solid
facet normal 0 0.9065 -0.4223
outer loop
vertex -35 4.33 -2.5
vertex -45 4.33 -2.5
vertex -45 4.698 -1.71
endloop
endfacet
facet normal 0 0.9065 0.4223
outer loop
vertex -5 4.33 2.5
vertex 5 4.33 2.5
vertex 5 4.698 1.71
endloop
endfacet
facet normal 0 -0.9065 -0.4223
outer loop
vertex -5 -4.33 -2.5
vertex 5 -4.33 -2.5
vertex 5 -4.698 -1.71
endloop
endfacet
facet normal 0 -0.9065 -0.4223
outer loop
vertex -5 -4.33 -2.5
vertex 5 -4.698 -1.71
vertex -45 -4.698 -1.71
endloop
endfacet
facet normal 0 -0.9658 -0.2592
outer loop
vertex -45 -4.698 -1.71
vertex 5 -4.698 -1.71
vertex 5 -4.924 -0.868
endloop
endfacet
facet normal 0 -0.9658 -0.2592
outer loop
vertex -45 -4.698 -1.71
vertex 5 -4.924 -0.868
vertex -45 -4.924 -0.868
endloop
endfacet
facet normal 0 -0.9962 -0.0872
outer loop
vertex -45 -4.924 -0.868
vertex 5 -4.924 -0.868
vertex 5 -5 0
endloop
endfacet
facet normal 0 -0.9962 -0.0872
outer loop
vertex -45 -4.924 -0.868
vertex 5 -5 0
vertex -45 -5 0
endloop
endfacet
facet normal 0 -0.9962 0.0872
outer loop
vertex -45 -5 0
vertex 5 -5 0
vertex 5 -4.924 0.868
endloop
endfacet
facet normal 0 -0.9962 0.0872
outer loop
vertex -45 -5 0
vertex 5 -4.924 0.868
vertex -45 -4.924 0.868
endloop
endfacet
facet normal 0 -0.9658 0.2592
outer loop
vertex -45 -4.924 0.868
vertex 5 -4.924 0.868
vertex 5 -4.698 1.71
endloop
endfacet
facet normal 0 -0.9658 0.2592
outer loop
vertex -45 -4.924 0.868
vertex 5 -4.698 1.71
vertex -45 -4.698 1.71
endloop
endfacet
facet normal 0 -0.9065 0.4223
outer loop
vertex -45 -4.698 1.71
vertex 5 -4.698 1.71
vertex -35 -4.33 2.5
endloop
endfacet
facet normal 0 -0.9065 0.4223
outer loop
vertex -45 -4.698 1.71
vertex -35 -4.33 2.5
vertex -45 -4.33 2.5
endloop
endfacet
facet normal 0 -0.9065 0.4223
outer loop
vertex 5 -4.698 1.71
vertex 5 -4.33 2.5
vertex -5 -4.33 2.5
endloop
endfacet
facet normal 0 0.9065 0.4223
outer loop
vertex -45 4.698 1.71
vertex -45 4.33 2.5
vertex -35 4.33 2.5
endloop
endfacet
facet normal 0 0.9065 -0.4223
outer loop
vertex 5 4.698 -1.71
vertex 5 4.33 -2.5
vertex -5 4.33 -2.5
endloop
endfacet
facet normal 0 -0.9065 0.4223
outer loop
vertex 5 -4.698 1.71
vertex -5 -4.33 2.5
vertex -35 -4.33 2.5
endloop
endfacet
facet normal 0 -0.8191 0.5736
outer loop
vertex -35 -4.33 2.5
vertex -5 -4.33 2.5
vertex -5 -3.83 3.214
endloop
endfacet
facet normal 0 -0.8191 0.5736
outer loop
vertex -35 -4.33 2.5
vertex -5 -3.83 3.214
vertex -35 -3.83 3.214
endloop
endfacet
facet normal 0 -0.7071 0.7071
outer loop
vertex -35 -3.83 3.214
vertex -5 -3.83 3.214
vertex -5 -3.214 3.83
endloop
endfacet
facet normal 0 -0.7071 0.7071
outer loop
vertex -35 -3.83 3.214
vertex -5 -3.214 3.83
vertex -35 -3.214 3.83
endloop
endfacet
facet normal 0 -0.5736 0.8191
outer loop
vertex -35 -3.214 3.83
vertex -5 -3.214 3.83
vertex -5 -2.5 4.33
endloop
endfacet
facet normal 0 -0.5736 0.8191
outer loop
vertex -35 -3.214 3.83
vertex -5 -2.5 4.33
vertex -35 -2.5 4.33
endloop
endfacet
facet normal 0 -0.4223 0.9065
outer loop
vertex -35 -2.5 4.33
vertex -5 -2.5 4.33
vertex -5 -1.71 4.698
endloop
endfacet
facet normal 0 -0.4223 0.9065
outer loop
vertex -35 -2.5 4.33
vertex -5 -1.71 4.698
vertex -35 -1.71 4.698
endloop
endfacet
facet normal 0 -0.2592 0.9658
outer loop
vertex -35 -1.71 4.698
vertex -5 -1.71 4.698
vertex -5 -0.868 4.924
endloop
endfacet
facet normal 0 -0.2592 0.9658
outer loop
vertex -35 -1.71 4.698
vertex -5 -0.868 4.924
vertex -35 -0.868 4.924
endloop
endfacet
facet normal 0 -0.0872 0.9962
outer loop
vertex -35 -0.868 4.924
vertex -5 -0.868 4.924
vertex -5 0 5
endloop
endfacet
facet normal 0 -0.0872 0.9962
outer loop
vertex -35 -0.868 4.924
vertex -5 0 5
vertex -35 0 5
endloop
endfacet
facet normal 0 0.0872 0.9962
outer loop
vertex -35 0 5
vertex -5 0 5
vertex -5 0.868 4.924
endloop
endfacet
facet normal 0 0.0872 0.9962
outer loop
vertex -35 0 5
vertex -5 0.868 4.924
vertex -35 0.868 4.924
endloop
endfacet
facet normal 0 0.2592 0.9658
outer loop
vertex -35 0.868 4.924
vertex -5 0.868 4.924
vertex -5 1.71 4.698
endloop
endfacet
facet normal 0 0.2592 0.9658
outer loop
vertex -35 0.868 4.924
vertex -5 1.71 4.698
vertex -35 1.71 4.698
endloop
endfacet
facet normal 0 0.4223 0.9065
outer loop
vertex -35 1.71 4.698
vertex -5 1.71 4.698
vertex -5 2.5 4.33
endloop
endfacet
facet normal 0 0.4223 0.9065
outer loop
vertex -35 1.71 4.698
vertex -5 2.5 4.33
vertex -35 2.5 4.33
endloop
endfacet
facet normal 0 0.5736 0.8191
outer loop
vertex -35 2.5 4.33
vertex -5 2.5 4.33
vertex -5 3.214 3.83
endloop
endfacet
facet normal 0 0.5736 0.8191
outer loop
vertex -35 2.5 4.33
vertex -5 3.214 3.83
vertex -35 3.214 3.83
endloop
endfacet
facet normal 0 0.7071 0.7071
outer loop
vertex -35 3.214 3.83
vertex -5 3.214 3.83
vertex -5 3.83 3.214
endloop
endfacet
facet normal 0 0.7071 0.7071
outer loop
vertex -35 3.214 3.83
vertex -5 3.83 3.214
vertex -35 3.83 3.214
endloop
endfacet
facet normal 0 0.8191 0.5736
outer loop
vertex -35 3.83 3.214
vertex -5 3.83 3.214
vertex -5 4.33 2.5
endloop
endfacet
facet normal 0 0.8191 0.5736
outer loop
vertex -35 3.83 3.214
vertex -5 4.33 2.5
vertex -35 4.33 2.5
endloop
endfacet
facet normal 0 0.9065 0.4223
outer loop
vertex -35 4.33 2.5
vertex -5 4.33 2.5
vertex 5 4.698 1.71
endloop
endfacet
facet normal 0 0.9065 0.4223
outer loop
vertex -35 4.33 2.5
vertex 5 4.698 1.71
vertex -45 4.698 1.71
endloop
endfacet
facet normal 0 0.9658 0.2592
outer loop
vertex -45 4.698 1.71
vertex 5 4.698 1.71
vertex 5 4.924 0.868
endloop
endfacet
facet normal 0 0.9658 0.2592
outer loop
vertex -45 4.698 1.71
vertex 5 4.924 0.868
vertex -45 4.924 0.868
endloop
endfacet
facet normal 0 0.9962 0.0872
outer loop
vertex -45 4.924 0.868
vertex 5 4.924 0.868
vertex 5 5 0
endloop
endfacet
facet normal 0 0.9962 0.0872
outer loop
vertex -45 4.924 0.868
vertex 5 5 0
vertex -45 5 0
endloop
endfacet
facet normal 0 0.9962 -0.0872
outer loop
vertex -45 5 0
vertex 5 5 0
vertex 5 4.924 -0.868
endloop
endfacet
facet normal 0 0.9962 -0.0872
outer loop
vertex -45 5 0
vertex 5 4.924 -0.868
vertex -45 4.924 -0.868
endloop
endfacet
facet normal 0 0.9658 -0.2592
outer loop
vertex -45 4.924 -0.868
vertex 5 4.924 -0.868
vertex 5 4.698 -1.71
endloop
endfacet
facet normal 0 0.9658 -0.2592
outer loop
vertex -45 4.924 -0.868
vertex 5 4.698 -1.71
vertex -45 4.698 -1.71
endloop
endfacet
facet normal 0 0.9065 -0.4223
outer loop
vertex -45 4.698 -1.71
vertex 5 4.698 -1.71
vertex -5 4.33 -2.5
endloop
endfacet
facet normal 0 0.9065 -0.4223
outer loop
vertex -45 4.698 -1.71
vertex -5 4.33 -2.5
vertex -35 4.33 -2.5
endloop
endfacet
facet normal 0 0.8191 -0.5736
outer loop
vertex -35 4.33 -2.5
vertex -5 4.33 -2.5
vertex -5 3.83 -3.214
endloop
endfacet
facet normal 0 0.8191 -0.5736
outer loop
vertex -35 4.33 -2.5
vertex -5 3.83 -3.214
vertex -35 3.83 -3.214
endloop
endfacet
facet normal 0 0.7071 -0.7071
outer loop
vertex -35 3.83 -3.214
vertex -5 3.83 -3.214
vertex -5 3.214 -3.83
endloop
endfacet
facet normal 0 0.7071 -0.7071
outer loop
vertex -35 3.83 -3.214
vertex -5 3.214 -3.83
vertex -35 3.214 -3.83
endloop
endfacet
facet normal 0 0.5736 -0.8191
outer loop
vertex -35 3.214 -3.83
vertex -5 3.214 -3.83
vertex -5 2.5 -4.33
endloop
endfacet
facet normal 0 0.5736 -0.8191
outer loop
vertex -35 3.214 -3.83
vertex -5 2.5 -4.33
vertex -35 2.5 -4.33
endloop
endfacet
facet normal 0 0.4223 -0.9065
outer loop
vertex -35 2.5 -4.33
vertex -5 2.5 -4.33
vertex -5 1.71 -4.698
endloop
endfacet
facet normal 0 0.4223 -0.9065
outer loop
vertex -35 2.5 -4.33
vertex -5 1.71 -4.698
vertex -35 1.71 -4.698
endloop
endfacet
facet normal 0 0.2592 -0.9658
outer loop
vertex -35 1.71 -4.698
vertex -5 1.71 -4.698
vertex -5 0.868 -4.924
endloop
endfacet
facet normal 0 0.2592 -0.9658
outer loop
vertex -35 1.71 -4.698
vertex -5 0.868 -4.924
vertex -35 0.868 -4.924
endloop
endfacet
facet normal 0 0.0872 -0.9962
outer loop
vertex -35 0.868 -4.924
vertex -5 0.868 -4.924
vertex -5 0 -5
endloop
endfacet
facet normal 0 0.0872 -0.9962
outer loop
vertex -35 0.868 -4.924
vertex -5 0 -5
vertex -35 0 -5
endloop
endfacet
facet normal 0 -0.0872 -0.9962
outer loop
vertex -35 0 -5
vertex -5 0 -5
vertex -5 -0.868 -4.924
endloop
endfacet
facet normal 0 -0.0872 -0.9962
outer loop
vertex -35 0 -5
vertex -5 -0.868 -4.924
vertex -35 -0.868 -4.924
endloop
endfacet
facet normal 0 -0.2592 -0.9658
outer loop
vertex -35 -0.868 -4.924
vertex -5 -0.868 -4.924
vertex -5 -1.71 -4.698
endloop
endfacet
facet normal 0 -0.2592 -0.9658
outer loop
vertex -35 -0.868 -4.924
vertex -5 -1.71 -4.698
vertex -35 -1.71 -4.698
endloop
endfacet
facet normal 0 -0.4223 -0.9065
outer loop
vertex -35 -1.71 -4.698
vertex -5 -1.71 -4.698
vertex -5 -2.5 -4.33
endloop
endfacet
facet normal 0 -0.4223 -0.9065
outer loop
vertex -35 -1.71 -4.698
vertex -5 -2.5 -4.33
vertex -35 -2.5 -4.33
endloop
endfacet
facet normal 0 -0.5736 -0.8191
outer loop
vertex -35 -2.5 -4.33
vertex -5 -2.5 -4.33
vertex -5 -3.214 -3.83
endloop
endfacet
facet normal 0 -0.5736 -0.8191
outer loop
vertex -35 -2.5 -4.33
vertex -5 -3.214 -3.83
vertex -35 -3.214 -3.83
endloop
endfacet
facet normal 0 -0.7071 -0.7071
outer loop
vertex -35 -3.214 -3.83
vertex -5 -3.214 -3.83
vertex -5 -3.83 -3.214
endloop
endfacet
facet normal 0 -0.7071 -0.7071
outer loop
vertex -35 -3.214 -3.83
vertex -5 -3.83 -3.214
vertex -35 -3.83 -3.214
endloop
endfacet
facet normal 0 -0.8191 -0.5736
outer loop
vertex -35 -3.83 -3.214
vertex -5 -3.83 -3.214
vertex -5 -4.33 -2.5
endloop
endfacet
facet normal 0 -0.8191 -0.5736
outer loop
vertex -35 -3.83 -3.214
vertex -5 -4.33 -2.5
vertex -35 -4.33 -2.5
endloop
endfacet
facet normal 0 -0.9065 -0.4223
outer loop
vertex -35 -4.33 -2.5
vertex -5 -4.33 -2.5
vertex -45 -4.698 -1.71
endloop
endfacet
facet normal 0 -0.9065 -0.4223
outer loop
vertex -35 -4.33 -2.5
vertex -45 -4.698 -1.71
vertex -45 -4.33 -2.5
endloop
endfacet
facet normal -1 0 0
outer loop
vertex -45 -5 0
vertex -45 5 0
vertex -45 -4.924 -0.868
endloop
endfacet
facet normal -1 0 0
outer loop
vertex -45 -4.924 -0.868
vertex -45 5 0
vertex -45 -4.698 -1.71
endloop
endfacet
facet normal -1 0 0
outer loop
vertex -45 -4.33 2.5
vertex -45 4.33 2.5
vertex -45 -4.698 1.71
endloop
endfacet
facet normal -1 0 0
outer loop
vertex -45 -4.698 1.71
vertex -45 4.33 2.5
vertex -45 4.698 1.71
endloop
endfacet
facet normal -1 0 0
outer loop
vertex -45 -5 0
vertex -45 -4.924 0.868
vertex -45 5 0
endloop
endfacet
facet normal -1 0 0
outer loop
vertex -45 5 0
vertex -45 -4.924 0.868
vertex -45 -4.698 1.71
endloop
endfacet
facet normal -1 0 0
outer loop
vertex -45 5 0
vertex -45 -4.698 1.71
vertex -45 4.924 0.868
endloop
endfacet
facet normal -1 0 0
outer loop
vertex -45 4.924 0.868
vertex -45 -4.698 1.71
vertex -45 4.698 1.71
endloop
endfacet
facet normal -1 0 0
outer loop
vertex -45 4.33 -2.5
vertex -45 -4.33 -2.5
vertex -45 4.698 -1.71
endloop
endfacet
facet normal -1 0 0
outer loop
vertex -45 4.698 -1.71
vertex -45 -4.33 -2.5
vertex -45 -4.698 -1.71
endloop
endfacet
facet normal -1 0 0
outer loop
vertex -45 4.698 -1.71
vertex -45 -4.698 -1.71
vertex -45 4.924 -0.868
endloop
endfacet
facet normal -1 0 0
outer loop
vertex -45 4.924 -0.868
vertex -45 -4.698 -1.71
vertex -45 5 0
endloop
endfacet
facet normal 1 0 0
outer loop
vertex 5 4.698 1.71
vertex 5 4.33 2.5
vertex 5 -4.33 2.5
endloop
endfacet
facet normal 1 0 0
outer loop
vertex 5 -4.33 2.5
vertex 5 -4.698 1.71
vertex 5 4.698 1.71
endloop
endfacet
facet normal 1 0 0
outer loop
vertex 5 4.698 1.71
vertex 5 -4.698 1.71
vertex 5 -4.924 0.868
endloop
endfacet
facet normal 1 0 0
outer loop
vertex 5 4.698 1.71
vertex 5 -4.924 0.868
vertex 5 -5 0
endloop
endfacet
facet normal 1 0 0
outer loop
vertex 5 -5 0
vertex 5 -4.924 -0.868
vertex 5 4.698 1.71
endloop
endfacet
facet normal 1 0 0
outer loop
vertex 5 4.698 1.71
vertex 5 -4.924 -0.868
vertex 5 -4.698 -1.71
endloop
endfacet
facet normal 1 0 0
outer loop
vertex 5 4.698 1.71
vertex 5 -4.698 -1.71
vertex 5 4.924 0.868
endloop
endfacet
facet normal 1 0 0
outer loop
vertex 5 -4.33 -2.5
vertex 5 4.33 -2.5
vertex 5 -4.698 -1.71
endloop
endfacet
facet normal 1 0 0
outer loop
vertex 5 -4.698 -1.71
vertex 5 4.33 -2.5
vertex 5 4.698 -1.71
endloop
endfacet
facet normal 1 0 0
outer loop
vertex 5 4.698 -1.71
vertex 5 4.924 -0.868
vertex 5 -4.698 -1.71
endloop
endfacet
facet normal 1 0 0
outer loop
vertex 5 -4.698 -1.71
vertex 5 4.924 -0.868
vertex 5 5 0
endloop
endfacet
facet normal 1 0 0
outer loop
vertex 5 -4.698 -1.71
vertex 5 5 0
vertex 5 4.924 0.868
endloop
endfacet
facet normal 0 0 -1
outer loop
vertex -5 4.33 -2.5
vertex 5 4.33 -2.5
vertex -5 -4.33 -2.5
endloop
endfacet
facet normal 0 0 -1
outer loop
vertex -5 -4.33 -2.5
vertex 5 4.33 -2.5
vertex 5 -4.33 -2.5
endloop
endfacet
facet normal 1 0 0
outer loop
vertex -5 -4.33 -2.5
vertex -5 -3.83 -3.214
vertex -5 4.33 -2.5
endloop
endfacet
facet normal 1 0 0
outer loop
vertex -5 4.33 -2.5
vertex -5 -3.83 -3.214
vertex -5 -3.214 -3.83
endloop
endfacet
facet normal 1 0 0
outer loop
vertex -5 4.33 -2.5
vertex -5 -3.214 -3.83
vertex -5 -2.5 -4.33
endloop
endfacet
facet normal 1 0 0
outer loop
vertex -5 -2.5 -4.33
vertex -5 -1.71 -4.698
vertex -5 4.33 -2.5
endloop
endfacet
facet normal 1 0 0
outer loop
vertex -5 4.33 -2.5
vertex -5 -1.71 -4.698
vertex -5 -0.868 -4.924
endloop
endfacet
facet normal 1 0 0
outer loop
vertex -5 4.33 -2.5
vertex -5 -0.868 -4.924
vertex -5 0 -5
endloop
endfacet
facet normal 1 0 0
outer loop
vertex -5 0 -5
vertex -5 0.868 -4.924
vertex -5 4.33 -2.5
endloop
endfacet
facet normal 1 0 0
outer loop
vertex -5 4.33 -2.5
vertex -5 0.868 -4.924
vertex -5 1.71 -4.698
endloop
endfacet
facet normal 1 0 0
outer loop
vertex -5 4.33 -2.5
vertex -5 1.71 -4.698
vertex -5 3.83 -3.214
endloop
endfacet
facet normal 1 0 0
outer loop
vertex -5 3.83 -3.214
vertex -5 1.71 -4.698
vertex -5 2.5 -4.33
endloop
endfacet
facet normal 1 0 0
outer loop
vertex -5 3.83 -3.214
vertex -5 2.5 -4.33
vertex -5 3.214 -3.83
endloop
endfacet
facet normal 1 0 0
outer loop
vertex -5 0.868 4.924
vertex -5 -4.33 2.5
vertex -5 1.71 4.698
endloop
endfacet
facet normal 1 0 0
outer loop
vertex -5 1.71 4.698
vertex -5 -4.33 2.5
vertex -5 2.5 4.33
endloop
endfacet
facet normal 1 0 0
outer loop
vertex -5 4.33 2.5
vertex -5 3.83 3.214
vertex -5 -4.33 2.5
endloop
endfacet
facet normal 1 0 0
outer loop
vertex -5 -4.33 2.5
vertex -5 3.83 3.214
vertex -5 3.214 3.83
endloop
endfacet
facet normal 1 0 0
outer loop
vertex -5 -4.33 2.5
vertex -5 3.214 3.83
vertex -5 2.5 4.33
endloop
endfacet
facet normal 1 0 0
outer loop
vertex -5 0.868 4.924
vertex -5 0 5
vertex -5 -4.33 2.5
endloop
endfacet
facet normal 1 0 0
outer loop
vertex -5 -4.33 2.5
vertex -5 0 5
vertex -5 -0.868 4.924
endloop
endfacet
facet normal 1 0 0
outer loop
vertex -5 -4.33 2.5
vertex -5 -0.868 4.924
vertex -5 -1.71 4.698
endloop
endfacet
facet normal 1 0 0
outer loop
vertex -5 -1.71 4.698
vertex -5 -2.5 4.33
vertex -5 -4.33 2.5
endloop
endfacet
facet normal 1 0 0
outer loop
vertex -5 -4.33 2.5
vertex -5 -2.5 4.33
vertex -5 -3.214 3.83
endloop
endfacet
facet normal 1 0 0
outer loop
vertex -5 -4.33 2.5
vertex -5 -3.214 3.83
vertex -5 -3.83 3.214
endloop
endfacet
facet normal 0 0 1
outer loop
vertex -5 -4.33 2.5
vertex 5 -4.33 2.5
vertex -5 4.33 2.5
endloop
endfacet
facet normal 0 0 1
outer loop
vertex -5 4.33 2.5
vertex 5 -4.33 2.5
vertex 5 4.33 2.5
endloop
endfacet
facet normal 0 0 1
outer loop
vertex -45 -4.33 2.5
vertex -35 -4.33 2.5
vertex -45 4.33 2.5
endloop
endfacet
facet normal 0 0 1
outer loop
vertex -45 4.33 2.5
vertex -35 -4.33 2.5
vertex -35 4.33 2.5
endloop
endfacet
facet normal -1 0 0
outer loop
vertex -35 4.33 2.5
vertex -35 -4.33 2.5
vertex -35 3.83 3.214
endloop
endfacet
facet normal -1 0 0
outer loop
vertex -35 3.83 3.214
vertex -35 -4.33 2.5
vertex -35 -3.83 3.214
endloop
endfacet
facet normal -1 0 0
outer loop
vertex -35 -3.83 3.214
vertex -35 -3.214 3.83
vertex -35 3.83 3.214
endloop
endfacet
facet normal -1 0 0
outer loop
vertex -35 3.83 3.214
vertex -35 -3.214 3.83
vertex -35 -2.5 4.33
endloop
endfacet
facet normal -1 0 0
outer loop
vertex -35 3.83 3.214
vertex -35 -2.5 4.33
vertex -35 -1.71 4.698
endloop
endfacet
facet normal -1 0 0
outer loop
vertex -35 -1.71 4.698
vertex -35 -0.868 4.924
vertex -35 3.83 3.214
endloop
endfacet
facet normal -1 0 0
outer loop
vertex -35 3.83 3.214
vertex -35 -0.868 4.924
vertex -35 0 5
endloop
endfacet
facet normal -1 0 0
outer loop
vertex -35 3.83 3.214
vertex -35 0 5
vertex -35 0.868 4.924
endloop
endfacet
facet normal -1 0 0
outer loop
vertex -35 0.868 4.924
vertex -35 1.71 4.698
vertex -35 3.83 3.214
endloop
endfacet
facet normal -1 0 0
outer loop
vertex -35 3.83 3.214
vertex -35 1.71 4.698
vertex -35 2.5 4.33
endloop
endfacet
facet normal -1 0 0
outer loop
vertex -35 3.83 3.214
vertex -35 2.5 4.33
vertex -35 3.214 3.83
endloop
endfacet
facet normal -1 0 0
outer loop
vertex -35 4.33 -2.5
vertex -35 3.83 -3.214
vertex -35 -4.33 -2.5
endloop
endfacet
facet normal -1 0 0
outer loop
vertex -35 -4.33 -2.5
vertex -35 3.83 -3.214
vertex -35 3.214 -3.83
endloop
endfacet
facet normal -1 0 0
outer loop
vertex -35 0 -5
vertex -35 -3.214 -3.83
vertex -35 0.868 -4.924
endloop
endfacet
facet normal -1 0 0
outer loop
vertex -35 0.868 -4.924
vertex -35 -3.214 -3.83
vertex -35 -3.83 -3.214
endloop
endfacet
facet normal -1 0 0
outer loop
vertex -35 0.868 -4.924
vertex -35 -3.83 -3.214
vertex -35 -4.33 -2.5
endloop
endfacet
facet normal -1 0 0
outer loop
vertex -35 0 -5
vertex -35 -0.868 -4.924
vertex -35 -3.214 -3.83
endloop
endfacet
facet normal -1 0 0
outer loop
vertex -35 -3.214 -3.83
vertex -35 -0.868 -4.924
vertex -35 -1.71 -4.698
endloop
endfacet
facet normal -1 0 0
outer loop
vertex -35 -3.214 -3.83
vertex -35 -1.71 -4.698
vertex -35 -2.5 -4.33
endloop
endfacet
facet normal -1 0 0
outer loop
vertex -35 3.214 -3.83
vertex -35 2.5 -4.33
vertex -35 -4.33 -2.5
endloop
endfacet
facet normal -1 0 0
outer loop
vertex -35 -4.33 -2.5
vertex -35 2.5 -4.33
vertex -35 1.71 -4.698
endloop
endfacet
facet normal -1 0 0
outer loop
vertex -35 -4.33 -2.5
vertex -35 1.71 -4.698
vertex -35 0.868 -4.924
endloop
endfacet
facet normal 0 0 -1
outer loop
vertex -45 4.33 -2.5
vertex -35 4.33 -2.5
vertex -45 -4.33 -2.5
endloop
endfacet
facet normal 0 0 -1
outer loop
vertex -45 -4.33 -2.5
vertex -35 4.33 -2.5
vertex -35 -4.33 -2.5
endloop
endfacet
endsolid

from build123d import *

# Parameters (mm, degrees)
SKETCH1_R                = 5
BOSS_EXTRUDE1_DEPTH      = 5
BOSS_EXTRUDE1_DEPTH_BACK = 45
SKETCH2_W                = 10
SKETCH2_H                = 2.5
CUT_EXTRUDE1_DEPTH       = 6
CUT_EXTRUDE1_DEPTH_BACK  = 6


with BuildPart() as part:
    # Sketch1 → Boss-Extrude1 (new body, two sides)
    with BuildSketch(Plane(origin=(0, 0, 0), x_dir=(0, 0, -1), z_dir=(1, 0, 0))) as boss_extrude1_sk:
        Circle(SKETCH1_R)
    extrude(amount=BOSS_EXTRUDE1_DEPTH)
    extrude(boss_extrude1_sk.sketch, amount=-BOSS_EXTRUDE1_DEPTH_BACK)

    # Sketch2 → Cut-Extrude1 (cut, two sides)
    with BuildSketch(Plane(origin=(0, 0, 0), x_dir=(1, 0, 0), z_dir=(0, 1, 0))) as cut_extrude1_sk:
        with Locations((-40, -3.75)):
            Rectangle(SKETCH2_W, SKETCH2_H)
        with Locations((-40, 3.75)):
            Rectangle(SKETCH2_W, SKETCH2_H)
        with Locations((0, -3.75)):
            Rectangle(SKETCH2_W, SKETCH2_H)
        with Locations((0, 3.75)):
            Rectangle(SKETCH2_W, SKETCH2_H)
    extrude(amount=CUT_EXTRUDE1_DEPTH, mode=Mode.SUBTRACT)
    extrude(cut_extrude1_sk.sketch, amount=-CUT_EXTRUDE1_DEPTH_BACK, mode=Mode.SUBTRACT)


solid = part.part
